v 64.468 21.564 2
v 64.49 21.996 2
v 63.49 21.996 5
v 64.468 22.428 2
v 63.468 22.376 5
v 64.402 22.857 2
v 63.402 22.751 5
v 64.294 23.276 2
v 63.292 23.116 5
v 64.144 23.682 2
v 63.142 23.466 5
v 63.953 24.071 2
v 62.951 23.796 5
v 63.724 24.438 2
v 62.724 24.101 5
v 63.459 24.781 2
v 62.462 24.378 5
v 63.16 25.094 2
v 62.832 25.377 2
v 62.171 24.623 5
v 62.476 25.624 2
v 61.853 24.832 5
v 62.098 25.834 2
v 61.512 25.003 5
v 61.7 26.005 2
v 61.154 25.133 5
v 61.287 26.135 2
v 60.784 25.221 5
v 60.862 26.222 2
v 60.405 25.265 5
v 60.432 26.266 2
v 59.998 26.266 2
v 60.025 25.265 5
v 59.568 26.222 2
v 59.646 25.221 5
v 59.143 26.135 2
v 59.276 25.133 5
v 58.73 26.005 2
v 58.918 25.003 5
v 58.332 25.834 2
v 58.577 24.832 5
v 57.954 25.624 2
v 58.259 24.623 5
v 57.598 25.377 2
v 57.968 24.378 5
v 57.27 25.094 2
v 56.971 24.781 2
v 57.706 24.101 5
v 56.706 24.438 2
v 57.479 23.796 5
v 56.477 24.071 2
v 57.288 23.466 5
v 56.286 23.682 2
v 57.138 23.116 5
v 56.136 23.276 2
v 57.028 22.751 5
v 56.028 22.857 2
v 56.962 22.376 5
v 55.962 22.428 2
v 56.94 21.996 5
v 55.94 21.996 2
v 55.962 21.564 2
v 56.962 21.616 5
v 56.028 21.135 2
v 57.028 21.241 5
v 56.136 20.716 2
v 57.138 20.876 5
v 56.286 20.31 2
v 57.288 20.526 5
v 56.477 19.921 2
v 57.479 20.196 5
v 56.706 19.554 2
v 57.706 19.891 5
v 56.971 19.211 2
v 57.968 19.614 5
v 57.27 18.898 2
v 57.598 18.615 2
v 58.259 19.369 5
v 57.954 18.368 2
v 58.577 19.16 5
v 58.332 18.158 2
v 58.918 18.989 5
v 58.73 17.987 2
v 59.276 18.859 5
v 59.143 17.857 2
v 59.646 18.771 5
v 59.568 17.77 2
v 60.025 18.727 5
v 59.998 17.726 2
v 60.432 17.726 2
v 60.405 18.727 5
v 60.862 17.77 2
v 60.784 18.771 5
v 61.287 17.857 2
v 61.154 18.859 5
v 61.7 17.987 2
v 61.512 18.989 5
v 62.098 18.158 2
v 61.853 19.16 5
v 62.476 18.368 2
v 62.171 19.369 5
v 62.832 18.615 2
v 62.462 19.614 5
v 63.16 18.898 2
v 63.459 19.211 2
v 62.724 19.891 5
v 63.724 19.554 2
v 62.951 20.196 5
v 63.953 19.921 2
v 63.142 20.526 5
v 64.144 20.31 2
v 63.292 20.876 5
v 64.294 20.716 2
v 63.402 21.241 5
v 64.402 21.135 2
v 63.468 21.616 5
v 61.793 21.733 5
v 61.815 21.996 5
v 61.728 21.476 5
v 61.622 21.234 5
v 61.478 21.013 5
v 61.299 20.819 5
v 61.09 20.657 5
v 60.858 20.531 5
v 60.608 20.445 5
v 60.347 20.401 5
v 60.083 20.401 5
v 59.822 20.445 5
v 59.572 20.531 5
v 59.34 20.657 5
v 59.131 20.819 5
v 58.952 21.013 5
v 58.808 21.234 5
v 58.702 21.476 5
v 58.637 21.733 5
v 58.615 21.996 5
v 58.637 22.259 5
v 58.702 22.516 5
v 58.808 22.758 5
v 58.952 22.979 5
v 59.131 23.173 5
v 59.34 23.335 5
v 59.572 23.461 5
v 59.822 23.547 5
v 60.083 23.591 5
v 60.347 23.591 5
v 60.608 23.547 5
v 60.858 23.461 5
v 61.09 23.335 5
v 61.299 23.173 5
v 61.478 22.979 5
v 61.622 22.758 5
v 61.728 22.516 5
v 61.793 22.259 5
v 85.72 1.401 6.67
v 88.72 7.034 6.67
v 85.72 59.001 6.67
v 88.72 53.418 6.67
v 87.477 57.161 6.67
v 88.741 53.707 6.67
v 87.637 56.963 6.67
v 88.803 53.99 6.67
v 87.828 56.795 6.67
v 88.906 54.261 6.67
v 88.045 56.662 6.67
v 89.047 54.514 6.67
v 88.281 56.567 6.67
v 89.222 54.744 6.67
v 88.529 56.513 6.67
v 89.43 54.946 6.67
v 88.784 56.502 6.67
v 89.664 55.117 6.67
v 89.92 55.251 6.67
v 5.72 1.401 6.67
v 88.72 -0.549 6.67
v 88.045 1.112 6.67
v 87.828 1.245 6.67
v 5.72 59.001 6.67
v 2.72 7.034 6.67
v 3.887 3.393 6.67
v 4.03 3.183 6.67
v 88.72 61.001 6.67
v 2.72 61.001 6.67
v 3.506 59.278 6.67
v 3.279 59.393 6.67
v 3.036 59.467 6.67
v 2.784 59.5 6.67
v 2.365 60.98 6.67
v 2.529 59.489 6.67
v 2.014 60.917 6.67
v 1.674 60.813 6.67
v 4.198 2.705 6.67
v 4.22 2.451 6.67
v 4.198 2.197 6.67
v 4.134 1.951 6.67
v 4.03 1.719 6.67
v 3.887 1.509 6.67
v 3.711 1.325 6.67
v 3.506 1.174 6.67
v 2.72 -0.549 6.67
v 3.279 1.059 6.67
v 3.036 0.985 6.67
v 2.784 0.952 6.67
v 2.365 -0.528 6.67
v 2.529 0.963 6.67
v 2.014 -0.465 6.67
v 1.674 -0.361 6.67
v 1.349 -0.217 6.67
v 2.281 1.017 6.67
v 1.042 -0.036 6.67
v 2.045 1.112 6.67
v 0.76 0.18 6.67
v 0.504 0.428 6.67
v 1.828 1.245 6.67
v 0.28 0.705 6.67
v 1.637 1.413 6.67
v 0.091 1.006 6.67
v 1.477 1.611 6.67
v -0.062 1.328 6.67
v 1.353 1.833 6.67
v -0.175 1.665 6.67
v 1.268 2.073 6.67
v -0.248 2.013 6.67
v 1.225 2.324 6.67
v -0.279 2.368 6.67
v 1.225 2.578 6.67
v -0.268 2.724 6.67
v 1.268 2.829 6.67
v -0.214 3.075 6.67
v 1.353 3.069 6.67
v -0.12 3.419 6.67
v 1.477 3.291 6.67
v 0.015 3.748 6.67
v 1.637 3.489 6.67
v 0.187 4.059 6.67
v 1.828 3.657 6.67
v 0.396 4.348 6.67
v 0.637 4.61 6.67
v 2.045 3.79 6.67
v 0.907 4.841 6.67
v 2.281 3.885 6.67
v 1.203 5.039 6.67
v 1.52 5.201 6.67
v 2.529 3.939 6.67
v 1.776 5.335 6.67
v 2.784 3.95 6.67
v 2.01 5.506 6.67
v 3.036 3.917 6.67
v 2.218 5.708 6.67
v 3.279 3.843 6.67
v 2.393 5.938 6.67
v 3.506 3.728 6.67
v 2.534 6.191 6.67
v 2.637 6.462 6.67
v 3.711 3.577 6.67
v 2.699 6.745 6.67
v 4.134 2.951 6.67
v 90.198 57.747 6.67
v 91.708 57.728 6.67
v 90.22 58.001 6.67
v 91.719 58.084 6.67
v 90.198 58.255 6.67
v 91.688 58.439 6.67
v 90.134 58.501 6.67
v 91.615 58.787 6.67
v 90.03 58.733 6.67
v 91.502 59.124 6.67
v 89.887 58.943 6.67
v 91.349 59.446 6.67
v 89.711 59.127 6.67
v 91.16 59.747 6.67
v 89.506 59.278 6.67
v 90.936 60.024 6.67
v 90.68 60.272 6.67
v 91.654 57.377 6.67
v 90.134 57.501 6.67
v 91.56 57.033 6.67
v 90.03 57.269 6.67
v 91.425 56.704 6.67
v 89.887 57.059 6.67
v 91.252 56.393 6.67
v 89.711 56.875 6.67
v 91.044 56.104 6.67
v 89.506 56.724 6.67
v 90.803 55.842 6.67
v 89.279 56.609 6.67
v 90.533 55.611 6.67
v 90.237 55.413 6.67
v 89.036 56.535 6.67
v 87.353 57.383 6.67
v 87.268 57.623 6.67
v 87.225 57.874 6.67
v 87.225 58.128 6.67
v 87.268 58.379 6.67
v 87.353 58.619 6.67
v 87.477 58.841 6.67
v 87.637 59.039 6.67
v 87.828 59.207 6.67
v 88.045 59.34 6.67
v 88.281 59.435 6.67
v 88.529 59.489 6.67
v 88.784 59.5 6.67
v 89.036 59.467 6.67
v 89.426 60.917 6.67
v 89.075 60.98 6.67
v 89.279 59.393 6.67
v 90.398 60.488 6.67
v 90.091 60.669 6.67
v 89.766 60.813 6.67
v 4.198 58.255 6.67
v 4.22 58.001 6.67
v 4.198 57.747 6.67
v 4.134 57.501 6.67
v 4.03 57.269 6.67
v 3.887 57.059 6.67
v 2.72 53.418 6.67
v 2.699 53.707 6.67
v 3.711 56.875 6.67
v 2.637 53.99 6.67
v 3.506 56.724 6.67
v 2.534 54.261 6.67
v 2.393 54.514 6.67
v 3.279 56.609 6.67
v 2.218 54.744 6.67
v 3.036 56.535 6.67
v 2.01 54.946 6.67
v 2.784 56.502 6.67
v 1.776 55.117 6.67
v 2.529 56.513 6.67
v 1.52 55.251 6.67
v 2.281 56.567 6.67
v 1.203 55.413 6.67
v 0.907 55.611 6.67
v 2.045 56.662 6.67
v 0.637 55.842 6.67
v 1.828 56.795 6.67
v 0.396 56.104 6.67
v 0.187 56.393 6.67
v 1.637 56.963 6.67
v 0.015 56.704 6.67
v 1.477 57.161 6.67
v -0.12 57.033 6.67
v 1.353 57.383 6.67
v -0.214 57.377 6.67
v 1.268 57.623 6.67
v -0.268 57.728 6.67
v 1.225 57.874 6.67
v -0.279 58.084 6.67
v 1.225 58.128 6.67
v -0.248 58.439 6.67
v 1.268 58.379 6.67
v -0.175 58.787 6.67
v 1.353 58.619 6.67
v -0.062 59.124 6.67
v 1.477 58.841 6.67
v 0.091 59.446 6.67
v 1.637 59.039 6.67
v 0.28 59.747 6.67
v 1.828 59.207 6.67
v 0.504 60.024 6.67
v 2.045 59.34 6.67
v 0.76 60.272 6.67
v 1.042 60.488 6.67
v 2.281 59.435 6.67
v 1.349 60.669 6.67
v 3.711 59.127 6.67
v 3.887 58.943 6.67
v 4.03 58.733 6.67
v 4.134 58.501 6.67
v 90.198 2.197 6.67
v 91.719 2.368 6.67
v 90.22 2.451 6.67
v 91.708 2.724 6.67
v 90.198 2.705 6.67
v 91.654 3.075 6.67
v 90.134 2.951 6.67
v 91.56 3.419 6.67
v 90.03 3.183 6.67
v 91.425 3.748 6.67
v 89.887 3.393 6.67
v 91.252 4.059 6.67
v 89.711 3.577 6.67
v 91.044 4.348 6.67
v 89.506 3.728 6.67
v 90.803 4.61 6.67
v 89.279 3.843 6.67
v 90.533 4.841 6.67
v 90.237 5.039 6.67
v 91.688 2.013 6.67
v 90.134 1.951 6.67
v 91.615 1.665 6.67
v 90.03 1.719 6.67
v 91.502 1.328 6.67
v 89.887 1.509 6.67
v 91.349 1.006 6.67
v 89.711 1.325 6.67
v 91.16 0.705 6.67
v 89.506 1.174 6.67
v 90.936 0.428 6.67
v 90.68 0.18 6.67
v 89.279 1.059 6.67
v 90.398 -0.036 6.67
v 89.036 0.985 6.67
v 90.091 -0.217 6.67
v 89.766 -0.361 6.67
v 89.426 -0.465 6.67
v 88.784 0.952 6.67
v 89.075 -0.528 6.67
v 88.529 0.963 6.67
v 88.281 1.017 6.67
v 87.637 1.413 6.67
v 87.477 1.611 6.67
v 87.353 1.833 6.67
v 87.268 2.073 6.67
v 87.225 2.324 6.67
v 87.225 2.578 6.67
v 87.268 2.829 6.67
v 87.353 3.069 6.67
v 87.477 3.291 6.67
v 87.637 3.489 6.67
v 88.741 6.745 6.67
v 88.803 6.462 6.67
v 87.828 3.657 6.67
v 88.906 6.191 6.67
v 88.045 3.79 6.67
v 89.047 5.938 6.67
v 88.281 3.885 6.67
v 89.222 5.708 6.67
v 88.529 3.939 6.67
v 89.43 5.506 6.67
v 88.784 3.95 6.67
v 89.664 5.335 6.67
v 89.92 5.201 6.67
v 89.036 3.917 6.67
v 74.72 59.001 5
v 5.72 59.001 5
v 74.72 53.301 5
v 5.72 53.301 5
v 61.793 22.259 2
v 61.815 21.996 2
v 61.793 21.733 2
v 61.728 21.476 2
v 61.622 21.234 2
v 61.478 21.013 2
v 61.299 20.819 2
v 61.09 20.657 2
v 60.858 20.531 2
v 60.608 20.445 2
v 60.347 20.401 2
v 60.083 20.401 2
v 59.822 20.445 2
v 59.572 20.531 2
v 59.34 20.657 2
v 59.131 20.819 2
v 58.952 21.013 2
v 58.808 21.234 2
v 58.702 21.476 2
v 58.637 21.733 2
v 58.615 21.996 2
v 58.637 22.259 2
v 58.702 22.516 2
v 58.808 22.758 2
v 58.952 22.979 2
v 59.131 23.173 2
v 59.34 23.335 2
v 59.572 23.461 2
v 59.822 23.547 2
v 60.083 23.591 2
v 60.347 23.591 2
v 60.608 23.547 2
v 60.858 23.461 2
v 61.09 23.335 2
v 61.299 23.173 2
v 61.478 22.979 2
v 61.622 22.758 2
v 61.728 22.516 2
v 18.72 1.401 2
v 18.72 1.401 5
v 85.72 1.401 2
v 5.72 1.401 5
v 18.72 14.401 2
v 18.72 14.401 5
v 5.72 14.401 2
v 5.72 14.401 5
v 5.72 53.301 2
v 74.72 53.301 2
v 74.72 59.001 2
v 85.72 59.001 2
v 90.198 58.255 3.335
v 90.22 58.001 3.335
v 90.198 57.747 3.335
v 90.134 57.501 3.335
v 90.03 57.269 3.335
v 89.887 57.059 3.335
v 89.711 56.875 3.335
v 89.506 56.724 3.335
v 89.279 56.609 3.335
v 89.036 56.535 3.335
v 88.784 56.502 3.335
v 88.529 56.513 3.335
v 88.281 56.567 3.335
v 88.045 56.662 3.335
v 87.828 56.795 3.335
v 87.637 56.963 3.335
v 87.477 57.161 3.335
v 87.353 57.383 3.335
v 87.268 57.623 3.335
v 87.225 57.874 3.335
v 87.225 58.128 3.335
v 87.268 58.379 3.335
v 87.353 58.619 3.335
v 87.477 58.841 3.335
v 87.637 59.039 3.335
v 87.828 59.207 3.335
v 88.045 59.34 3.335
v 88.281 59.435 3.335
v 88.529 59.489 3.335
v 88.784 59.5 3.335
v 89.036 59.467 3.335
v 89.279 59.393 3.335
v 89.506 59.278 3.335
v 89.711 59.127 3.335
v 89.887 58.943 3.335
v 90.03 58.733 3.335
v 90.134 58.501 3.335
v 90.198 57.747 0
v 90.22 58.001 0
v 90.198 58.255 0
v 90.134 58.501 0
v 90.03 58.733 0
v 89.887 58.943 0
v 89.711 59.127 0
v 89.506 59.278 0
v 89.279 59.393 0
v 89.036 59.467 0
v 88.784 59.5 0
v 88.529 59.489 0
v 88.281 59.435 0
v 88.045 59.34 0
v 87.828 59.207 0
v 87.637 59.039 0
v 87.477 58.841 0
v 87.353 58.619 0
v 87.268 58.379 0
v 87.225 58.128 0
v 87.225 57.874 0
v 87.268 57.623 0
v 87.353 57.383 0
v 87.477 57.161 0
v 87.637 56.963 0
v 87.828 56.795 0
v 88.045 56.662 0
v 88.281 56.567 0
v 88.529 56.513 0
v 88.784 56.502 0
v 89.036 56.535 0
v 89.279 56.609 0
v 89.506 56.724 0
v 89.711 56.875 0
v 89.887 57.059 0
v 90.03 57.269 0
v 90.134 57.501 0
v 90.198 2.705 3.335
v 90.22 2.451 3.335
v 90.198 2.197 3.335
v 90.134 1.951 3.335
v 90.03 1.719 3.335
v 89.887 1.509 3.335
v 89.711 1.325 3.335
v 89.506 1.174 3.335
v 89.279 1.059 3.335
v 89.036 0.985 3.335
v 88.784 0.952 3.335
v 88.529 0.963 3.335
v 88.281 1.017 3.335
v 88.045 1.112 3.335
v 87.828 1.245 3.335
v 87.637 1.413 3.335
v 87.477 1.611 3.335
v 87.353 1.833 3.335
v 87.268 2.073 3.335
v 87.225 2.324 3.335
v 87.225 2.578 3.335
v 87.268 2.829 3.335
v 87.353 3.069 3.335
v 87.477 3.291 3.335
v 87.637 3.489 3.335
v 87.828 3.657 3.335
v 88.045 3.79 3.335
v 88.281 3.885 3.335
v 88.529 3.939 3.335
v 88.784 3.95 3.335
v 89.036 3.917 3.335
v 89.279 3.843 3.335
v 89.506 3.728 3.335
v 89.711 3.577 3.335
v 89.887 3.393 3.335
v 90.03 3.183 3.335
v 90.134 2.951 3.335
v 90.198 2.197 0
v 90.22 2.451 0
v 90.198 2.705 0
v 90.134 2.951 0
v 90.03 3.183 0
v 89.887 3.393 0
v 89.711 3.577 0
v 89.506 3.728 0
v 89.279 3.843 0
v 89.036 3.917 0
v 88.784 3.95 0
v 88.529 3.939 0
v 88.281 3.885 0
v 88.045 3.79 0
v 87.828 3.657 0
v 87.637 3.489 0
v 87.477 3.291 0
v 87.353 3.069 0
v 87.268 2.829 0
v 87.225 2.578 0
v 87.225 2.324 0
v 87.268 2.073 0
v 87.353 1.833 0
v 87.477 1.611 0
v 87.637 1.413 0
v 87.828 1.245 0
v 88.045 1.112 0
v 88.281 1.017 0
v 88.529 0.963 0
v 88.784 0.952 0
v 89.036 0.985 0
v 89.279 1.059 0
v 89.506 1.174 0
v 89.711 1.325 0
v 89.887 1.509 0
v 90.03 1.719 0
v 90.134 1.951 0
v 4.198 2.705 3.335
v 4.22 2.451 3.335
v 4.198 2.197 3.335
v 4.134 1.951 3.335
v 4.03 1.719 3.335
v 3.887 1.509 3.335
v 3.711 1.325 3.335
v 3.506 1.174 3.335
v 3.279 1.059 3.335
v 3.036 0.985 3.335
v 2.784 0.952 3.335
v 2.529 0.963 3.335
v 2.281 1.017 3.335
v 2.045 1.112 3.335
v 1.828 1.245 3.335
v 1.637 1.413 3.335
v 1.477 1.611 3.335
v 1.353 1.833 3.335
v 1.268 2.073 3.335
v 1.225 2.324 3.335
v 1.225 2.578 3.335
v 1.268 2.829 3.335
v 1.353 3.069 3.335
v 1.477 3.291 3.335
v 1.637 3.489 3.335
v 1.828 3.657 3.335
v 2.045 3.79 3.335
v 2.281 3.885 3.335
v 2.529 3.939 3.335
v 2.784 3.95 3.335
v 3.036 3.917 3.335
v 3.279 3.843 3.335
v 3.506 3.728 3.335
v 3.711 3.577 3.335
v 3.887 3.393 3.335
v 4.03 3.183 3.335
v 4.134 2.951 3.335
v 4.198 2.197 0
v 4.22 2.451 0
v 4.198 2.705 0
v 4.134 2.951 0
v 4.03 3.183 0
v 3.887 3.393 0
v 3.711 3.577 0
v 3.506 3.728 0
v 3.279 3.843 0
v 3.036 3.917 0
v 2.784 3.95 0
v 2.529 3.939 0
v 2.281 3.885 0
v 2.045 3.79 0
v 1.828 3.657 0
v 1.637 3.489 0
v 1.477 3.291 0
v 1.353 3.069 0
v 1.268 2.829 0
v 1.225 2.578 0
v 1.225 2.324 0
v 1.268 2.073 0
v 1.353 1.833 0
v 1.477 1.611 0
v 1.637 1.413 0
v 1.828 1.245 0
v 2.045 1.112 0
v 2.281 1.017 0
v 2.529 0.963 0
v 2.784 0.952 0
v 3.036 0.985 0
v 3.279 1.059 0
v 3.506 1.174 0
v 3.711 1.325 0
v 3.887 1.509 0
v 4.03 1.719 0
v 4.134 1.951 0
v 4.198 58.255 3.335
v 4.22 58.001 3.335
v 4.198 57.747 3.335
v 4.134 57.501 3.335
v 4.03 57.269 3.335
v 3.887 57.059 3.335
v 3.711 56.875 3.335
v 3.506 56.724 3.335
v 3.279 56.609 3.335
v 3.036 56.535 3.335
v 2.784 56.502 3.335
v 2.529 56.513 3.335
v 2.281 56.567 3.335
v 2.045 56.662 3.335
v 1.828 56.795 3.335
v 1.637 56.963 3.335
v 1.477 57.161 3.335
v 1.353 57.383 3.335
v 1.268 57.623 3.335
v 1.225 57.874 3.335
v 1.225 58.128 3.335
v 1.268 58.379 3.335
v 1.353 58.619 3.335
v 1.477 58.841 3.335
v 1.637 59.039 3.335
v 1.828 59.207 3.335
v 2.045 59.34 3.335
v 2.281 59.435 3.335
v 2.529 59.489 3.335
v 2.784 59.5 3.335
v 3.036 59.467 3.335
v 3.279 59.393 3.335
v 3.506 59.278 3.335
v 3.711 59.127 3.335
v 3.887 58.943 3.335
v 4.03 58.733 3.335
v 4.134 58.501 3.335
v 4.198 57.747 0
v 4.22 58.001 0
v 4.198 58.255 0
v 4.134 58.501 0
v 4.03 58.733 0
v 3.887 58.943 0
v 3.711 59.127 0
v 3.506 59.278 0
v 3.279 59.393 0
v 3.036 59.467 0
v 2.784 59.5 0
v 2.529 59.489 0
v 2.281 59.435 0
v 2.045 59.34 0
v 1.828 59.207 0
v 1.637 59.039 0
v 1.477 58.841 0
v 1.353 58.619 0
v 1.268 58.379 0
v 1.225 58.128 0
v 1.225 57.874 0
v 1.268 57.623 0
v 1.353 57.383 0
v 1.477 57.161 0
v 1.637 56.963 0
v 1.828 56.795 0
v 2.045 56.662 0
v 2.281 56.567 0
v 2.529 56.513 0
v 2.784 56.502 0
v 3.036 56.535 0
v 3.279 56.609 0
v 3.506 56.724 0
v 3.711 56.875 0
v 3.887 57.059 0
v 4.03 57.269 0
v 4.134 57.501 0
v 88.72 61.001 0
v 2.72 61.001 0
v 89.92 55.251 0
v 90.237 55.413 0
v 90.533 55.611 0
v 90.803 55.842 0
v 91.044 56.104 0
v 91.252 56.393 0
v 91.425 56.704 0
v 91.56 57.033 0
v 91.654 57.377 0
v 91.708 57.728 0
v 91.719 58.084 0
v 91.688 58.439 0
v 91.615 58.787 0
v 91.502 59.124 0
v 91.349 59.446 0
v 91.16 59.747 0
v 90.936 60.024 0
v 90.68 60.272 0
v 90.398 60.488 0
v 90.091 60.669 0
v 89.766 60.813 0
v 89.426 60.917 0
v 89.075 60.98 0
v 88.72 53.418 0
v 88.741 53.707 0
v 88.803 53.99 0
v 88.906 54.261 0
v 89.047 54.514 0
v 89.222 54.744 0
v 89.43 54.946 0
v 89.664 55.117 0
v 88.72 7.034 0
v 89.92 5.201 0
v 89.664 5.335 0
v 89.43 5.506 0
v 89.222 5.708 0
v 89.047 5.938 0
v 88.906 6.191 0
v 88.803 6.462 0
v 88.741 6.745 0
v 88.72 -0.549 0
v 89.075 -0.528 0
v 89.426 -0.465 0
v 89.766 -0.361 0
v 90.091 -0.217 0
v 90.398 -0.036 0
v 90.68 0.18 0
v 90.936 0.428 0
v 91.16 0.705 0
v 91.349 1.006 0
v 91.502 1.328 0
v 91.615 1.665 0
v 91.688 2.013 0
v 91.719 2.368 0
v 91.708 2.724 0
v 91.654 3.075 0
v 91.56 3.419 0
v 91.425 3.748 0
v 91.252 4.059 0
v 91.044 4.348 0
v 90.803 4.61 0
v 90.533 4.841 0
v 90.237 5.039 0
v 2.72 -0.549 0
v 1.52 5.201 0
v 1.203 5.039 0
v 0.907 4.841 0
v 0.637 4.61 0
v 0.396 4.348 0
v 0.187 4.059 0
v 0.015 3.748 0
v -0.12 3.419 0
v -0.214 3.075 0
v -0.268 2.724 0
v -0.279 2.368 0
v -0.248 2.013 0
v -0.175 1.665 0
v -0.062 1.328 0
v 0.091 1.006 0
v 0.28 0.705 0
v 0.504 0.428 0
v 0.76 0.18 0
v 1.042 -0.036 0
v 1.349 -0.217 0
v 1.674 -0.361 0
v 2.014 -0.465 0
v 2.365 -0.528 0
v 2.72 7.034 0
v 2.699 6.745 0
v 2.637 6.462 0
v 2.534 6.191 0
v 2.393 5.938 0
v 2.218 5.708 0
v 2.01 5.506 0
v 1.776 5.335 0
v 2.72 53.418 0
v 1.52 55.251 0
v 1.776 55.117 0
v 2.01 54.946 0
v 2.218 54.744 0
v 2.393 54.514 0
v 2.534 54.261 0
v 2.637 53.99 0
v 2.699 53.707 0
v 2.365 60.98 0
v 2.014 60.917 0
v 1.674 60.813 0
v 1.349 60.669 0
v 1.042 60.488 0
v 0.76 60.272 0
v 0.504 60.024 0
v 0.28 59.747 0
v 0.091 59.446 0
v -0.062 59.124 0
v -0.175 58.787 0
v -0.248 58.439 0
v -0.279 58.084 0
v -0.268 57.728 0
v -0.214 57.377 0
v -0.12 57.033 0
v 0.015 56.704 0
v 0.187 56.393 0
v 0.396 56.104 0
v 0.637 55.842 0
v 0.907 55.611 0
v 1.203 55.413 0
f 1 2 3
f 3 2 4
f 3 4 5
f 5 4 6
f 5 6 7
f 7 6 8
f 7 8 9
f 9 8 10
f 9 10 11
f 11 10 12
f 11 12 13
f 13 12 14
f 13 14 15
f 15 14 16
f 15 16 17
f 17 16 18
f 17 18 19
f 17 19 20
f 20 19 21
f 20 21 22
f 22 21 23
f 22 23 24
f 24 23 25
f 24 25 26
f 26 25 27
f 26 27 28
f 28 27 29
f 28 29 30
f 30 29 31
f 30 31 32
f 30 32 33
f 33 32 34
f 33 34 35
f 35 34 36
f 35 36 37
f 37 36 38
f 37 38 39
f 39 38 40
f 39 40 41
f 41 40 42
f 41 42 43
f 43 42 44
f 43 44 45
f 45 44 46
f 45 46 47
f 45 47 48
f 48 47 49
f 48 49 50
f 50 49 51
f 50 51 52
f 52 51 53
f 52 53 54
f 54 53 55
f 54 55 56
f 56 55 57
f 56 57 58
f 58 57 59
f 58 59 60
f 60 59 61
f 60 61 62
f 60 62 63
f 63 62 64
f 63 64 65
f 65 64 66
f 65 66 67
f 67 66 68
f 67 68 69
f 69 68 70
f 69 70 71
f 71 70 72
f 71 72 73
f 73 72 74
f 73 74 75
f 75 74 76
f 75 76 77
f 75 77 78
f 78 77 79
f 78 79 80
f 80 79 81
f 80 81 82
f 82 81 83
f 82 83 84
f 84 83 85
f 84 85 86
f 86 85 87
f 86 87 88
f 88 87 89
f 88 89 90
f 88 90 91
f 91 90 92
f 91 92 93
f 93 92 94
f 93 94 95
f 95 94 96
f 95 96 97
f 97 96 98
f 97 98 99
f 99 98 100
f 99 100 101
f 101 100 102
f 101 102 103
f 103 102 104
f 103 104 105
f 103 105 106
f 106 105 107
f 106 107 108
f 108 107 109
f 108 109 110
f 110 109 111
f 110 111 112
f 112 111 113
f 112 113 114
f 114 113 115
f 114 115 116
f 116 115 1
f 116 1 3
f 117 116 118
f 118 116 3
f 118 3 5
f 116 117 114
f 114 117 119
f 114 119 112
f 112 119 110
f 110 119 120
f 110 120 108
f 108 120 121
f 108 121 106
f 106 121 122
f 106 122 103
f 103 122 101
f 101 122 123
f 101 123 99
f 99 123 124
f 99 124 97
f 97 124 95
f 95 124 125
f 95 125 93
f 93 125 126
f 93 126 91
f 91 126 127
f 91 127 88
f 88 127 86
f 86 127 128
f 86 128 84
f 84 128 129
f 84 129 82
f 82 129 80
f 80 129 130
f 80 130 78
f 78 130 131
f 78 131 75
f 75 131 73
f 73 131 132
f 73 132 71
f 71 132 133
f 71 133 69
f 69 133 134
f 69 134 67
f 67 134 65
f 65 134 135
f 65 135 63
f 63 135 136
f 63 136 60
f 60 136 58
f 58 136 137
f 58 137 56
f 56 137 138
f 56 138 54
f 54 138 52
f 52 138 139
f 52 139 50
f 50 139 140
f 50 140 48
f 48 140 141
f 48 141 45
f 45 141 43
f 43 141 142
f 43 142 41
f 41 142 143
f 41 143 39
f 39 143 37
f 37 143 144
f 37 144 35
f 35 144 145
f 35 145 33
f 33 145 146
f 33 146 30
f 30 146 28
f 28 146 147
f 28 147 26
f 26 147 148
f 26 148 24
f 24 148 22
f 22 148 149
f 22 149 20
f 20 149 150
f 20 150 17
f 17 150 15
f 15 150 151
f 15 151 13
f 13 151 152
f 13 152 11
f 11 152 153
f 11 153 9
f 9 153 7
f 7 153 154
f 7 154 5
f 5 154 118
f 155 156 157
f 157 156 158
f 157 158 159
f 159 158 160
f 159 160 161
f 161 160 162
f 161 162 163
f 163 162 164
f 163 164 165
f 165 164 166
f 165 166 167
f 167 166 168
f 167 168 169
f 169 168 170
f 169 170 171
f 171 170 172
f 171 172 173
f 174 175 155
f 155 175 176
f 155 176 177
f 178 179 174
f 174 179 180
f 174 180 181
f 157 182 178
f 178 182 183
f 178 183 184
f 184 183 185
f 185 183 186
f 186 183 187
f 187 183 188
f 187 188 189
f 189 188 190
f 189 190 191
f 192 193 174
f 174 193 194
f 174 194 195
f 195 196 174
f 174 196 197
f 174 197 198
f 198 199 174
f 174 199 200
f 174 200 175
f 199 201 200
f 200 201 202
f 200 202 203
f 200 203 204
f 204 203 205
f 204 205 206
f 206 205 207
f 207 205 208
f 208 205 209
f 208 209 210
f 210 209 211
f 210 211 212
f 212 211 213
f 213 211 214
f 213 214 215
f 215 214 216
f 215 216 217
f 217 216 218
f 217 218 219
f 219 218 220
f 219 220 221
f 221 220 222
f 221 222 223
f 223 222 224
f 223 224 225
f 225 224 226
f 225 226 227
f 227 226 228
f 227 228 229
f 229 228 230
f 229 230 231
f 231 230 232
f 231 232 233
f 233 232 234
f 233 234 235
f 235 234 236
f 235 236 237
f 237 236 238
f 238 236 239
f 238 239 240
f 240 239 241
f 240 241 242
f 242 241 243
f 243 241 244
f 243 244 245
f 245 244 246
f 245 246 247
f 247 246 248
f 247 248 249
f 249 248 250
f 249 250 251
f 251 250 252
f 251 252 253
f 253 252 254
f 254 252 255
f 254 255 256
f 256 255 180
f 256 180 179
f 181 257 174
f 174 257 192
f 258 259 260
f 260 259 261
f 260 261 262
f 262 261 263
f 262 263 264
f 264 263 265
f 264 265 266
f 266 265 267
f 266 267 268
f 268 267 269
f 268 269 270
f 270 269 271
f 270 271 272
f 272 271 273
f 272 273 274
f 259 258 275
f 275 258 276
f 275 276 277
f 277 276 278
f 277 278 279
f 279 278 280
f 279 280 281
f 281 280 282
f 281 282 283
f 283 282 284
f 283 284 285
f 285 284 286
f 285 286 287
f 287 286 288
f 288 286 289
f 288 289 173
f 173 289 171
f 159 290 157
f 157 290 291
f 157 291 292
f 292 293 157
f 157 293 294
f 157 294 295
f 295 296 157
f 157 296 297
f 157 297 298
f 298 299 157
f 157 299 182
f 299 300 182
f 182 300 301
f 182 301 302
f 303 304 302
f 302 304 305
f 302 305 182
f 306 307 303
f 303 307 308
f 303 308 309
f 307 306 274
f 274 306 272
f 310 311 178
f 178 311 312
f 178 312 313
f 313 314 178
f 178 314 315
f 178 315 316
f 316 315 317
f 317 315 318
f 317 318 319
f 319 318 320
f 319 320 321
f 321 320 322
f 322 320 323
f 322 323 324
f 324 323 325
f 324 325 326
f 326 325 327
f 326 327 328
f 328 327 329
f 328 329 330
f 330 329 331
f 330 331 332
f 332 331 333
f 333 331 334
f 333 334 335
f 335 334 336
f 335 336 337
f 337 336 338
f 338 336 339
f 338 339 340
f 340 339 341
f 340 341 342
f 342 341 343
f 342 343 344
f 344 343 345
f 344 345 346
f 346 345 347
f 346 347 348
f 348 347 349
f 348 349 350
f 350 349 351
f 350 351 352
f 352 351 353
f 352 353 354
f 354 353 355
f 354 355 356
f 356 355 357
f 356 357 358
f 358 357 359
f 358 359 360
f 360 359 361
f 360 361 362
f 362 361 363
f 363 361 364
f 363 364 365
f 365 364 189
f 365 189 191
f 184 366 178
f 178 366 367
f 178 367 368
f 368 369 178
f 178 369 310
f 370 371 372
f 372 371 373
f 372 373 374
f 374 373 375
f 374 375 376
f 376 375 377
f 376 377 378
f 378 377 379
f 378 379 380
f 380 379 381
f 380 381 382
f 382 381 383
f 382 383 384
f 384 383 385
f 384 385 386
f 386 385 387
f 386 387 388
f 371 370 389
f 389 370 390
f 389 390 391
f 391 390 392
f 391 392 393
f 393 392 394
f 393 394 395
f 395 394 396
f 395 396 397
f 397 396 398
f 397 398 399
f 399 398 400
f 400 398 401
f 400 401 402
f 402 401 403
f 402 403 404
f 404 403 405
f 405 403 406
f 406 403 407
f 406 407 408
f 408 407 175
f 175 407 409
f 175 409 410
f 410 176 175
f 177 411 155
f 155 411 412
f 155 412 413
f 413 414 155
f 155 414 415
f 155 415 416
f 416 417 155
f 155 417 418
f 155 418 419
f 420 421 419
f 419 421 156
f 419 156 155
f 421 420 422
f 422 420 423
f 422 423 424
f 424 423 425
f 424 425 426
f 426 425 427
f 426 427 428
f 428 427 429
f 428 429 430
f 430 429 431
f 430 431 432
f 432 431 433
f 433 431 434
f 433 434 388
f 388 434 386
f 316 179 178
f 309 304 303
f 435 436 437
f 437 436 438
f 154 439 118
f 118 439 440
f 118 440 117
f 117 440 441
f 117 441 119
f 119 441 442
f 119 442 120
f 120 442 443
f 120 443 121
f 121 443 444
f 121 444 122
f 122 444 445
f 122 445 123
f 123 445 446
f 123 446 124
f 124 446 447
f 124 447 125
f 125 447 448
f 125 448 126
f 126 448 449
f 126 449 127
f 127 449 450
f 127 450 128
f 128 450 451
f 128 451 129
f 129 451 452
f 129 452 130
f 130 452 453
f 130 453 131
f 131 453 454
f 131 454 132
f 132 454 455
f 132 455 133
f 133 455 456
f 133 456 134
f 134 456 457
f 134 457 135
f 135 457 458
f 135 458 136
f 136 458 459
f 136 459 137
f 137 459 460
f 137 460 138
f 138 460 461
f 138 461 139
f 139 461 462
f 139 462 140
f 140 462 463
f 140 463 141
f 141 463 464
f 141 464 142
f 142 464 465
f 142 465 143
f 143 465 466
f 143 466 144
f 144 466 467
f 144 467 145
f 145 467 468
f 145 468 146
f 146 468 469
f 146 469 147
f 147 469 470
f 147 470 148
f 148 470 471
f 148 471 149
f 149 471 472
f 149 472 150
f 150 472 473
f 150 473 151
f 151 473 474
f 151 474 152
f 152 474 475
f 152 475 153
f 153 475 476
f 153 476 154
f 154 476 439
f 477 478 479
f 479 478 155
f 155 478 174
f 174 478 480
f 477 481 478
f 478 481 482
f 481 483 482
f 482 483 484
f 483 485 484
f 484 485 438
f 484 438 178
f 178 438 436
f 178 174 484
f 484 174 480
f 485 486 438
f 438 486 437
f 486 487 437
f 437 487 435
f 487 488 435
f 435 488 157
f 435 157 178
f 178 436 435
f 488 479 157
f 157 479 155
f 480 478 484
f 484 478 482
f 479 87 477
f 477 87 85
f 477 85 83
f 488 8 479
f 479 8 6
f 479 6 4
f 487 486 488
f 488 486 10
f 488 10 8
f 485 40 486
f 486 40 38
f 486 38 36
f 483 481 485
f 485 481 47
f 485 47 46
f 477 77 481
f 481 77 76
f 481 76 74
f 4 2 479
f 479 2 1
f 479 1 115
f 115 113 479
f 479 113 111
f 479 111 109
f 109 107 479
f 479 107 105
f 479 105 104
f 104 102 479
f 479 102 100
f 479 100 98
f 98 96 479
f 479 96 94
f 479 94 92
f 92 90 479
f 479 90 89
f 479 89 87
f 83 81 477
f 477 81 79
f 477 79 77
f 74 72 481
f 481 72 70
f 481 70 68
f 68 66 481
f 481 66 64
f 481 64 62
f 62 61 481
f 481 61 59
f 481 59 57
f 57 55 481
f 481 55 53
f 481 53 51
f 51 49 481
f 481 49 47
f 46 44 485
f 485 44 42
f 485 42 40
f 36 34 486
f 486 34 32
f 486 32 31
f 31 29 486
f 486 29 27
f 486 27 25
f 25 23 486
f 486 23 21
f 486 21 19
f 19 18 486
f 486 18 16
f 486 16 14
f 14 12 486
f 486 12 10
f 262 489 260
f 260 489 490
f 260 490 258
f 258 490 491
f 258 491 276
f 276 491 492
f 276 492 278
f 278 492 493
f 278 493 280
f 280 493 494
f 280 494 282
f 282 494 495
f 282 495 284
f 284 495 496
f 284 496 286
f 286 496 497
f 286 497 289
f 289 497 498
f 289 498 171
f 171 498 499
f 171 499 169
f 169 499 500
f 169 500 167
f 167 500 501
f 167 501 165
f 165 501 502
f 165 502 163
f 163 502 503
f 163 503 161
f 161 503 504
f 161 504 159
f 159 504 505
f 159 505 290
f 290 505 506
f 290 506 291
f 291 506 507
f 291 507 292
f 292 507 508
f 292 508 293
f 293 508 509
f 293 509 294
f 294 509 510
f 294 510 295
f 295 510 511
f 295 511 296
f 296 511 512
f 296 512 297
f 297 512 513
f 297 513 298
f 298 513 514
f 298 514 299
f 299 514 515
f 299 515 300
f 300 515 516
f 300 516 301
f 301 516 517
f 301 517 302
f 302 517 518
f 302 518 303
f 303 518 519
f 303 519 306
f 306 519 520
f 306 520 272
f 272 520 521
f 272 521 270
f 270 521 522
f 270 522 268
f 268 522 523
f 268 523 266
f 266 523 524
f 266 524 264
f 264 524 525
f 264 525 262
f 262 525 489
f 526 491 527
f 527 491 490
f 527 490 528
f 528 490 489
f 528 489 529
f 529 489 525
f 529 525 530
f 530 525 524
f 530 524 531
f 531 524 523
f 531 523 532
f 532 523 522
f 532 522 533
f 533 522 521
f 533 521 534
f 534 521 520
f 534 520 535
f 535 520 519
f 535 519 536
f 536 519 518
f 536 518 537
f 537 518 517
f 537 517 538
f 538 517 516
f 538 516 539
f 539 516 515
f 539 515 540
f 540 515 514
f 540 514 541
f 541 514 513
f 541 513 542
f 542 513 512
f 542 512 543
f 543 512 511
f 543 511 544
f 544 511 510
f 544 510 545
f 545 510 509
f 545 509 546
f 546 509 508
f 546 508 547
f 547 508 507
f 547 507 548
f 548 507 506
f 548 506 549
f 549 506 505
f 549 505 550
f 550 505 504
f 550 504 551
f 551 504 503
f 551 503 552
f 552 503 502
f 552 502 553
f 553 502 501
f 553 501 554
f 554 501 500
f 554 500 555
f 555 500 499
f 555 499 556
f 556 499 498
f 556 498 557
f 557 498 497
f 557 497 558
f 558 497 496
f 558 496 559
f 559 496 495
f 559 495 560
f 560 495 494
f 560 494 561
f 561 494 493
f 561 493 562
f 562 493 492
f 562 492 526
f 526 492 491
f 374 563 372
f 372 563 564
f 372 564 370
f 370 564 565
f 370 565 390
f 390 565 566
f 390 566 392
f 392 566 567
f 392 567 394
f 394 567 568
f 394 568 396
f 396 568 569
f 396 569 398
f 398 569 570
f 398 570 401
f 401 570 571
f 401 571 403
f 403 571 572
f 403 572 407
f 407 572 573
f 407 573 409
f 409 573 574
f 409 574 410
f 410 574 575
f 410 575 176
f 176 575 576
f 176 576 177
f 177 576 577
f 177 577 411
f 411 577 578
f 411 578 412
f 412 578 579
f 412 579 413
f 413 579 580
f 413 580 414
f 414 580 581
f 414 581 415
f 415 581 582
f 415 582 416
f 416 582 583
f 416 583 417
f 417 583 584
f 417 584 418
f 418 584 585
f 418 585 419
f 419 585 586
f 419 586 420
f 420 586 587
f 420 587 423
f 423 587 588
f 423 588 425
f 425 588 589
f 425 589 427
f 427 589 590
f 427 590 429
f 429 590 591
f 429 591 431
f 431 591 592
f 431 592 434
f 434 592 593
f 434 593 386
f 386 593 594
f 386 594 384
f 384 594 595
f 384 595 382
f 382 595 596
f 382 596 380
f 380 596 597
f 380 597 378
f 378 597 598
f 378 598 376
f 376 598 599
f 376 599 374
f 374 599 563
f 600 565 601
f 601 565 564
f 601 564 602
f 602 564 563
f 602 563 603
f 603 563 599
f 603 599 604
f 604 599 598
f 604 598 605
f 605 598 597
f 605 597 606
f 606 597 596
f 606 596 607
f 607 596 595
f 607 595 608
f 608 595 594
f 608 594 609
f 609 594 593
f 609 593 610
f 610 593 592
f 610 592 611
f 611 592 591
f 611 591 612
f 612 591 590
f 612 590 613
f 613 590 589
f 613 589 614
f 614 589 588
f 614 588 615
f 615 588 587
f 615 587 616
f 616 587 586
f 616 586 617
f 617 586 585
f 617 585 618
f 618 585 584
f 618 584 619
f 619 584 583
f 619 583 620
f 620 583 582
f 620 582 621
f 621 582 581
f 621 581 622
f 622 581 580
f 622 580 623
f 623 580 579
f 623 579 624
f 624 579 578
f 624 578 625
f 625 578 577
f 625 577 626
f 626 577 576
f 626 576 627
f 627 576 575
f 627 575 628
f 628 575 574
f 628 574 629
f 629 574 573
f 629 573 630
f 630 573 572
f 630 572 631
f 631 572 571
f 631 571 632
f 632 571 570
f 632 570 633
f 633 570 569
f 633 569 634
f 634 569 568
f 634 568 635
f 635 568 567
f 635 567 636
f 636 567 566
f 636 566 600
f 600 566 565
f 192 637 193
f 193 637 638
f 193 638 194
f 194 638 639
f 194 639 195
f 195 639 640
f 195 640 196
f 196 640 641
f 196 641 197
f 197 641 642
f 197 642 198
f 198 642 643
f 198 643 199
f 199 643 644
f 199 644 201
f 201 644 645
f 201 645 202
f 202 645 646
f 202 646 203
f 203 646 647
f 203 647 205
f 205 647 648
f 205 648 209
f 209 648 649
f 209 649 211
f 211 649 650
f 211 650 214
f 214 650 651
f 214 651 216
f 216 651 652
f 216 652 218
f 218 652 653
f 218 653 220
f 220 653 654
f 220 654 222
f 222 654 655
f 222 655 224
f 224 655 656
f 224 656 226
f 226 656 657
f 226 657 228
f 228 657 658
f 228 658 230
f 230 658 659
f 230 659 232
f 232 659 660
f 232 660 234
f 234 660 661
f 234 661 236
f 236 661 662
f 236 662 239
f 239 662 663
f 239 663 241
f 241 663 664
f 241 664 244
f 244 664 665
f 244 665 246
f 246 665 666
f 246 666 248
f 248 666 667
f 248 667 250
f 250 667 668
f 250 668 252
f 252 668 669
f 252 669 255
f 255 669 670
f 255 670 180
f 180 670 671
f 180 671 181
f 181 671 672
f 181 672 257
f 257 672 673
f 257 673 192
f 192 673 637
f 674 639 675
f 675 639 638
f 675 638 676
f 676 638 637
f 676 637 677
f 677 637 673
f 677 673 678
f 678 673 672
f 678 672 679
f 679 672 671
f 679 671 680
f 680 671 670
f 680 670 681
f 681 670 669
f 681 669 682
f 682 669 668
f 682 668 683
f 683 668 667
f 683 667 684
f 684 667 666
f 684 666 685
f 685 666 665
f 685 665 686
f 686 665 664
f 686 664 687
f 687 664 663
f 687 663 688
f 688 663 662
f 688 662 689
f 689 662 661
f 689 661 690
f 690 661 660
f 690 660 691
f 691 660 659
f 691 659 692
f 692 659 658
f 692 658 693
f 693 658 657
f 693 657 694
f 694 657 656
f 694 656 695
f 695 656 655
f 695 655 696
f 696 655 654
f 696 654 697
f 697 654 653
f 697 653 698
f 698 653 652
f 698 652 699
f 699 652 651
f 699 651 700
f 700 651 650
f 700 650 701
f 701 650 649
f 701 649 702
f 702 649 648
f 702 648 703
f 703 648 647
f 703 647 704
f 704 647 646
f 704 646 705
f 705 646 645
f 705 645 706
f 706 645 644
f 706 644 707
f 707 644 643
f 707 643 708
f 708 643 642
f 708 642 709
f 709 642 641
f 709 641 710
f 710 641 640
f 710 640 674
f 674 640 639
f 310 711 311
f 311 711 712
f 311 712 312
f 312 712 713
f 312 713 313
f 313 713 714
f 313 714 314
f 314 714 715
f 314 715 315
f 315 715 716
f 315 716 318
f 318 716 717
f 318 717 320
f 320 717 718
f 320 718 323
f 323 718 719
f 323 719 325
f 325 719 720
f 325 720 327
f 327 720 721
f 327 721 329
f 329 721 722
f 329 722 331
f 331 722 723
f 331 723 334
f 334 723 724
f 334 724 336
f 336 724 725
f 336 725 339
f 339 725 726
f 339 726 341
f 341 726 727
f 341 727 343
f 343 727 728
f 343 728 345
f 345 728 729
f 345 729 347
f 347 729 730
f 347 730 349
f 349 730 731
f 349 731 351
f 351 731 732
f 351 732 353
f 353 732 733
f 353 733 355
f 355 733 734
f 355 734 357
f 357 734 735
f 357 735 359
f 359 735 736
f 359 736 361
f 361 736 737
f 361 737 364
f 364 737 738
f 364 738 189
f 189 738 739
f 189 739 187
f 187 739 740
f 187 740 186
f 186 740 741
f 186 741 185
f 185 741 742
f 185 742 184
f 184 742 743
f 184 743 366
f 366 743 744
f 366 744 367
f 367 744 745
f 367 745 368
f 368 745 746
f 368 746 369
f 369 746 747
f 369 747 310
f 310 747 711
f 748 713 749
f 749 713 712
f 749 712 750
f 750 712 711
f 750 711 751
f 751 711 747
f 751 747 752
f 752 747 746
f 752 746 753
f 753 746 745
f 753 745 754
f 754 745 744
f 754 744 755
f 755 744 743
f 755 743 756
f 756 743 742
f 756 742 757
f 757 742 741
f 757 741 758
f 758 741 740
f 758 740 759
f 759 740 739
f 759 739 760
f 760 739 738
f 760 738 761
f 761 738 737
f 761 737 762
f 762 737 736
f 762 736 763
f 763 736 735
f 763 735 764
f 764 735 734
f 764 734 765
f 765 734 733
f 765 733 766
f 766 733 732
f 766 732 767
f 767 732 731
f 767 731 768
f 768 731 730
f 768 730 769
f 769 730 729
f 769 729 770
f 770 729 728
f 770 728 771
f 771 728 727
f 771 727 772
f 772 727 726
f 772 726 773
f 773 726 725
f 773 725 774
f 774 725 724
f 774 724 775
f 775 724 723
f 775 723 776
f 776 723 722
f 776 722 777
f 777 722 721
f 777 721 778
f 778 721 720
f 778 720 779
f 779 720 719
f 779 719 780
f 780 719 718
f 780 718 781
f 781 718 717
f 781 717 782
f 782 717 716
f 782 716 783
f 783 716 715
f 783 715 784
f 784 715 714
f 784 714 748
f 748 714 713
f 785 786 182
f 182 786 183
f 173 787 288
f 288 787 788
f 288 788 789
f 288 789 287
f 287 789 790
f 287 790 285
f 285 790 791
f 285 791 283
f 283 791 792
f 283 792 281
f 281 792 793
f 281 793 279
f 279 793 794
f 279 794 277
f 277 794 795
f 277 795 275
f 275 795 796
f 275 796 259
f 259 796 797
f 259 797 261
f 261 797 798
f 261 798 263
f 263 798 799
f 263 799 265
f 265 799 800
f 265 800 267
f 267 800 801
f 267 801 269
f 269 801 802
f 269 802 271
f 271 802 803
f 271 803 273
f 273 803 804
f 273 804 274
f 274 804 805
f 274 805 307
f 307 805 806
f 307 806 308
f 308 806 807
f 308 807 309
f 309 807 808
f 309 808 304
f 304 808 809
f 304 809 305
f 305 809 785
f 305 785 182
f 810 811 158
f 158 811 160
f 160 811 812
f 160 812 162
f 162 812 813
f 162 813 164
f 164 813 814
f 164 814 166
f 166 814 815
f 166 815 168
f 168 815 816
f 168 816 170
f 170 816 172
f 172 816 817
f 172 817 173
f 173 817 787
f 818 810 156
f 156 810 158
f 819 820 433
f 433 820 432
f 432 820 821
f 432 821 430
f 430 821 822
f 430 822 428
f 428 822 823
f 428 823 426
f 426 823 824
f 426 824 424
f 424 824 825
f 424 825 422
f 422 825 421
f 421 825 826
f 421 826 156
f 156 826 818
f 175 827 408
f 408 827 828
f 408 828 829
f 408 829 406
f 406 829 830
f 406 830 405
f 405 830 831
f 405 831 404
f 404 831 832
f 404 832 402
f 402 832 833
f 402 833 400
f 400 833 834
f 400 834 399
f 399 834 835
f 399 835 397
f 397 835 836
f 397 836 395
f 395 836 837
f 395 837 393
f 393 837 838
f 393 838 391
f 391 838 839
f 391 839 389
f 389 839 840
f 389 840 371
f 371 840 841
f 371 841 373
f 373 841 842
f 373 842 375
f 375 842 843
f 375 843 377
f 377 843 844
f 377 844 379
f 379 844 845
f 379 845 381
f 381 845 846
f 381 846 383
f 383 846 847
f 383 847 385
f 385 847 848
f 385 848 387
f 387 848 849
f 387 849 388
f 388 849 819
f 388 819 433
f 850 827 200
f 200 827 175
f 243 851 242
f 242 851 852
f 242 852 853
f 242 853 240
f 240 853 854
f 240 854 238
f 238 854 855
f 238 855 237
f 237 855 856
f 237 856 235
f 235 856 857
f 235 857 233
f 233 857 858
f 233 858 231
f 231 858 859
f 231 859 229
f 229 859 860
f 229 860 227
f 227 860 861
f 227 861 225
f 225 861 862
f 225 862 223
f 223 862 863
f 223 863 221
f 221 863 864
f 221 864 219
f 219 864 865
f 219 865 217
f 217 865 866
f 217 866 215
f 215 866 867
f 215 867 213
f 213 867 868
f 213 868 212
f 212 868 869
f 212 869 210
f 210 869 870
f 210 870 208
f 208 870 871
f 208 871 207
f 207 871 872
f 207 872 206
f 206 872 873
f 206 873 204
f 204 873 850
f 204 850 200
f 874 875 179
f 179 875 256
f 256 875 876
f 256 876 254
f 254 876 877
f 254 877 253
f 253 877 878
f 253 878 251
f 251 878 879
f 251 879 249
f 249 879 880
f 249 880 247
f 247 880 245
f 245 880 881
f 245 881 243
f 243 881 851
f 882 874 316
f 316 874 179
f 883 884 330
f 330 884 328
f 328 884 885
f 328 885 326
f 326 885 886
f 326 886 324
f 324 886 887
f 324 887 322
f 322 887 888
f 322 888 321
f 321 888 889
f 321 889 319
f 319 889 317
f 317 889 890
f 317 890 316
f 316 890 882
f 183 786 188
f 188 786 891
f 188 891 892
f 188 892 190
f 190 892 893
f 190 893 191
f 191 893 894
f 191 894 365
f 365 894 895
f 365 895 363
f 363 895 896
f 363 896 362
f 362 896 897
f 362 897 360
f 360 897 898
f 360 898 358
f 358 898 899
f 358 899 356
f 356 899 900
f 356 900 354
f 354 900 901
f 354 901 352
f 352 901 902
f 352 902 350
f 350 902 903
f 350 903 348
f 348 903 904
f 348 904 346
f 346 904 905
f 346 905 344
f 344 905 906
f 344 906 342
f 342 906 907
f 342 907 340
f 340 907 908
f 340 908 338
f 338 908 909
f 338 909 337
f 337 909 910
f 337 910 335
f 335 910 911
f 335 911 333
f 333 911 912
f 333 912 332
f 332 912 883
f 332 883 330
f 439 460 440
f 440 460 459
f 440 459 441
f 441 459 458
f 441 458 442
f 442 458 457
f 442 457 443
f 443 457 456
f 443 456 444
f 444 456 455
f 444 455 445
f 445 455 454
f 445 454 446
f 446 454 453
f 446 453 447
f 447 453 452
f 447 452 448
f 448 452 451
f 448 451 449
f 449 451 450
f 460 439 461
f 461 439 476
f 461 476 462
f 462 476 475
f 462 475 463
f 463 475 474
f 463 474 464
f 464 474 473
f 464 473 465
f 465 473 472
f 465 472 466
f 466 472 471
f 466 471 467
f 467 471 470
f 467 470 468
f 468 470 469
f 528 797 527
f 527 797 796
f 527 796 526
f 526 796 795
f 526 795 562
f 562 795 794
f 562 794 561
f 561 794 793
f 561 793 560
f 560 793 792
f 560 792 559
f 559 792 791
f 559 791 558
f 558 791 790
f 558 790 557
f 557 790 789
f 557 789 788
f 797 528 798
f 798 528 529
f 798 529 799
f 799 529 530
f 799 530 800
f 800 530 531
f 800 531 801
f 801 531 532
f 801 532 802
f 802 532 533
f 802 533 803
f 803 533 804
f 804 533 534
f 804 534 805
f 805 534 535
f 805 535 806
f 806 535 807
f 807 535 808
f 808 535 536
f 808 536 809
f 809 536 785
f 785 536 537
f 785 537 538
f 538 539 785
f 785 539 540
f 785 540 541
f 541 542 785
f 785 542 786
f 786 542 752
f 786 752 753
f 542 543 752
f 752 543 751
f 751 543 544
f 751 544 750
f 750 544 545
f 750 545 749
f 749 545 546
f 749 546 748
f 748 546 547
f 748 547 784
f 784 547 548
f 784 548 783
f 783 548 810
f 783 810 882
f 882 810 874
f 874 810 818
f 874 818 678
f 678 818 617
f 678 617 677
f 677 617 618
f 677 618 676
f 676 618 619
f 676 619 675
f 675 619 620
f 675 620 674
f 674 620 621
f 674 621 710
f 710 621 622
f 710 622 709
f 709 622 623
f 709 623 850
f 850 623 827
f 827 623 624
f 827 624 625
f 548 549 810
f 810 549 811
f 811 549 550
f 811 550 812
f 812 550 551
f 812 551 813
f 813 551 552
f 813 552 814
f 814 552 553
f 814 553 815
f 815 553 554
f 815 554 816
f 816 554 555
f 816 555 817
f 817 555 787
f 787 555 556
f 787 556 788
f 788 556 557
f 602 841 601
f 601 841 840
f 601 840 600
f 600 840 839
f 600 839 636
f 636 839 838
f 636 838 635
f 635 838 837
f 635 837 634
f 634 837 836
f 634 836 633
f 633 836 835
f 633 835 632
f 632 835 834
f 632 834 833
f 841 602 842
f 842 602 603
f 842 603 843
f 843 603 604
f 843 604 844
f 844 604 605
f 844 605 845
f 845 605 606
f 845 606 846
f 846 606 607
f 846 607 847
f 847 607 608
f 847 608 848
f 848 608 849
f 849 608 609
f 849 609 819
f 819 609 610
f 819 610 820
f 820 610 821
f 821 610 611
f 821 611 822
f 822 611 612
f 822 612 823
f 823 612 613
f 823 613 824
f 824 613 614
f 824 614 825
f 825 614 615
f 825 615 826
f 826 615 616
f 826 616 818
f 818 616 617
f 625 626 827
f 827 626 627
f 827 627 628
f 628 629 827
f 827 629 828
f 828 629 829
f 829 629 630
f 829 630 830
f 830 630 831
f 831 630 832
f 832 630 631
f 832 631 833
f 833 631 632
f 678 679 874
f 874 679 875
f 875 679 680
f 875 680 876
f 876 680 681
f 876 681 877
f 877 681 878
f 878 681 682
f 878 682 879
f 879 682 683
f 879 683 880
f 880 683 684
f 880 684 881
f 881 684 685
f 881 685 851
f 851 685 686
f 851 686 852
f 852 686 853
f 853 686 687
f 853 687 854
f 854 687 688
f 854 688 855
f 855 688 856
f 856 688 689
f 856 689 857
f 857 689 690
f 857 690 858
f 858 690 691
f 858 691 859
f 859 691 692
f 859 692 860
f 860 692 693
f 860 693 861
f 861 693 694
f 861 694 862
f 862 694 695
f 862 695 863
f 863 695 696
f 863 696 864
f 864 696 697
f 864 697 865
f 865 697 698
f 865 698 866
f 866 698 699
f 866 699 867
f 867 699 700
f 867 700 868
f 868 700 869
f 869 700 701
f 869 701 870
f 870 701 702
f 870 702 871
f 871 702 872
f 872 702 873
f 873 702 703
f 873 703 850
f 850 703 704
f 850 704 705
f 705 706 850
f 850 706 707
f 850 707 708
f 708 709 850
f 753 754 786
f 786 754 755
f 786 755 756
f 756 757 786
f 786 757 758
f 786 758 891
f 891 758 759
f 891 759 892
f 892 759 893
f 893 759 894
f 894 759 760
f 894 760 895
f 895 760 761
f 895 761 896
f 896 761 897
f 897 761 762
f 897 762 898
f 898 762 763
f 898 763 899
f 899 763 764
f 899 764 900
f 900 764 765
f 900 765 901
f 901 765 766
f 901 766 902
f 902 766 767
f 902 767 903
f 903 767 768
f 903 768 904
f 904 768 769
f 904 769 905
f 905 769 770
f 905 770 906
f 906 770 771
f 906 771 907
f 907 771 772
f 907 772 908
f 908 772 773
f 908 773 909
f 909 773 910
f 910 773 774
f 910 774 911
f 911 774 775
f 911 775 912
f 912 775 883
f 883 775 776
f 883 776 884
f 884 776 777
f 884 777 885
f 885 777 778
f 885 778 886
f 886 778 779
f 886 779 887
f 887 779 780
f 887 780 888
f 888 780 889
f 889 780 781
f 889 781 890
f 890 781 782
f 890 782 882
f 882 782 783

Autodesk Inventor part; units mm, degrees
ref_plane "YZ Plane" through (0, 0, 0) normal (1, 0, 0) x (0, 1, 0)
ref_plane "XZ Plane" through (0, 0, 0) normal (0, 1, 0) x (-1, 0, 0)
ref_plane "XY Plane" through (0, 0, 0) normal (0, 0, 1) x (1, 0, 0)
sketch "Sketch1" plane through (0, 0, 0) normal (0, 0, 1) x (1, 0, 0)
  line L0 (85.72, 30.226) -> (85.72, 1.401) construction
  line L1 (85.72, 1.401) -> (45.72, 1.401) construction
  line L2 (85.72, 1.401) -> (5.72, 1.401) construction
  line L3 (5.72, 1.401) -> (5.72, 59.001) construction
  line L4 (5.72, 59.001) -> (85.72, 59.001) construction
  line L5 (85.72, 59.001) -> (85.72, 1.401) construction
  line L6 (61.99, 1.401) -> (61.99, 20.221) construction
  line L7 (61.99, 20.221) -> (85.72, 20.221) construction
  line L8 (61.99, 20.221) -> (58.44, 20.221) construction
  line L9 (61.99, 23.771) -> (61.99, 20.221) construction
  line L10 (60.215, 20.221) -> (61.99, 20.221) construction
  line L11 (61.99, 20.221) -> (61.99, 21.996) construction
  line L12 (61.99, 21.996) -> (60.215, 21.996) construction
  line L13 (60.215, 21.996) -> (60.215, 20.221) construction
  circle A0 centre (60.215, 21.996) radius 1.775 construction
  circle A1 centre (60.215, 21.996) radius 2.775 construction
  circle A2 centre (60.215, 21.996) radius 4.275 construction
  line L14 (5.72, 59.001) -> (74.72, 59.001) construction
  line L15 (74.72, 59.001) -> (74.72, 53.301) construction
  line L16 (74.72, 53.301) -> (5.72, 53.301) construction
  line L17 (5.72, 53.301) -> (5.72, 59.001) construction
  line L18 (5.72, 1.401) -> (18.72, 1.401) construction
  line L19 (18.72, 1.401) -> (18.72, 14.401) construction
  line L20 (18.72, 14.401) -> (5.72, 14.401) construction
  line L21 (5.72, 14.401) -> (5.72, 1.401) construction
  circle A3 centre (2.72, 58.001) radius 1.5
  line L22 (3.72, 61.001) -> (5.72, 61.001)
  line L23 (5.72, 61.001) -> (5.72, 59.001) construction
  line L24 (5.72, 61.001) -> (2.72, 61.001)
  line L25 (5.72, 55.001) -> (5.72, 61.001) construction
  line L26 (45.72, 1.9437) -> (45.72, 30.226) construction
  line L27 (45.72, 30.226) -> (85.72, 30.226) construction
  arc A4 (2.72, 61.001) -> (1.52, 55.2515) centre (2.72, 58.001) ccw
  circle A5 centre (2.72, 2.451) radius 1.5
  line L28 (3.72, -0.549) -> (5.72, -0.549)
  line L29 (5.72, -0.549) -> (2.72, -0.549)
  arc A6 (1.52, 5.2005) -> (2.72, -0.549) centre (2.72, 2.451) ccw
  circle A7 centre (88.72, 58.001) radius 1.5
  line L30 (85.72, 61.001) -> (88.72, 61.001)
  arc A8 (89.92, 55.2515) -> (88.72, 61.001) centre (88.72, 58.001) ccw
  line L31 (85.72, -0.549) -> (88.72, -0.549)
  circle A9 centre (88.72, 2.451) radius 1.5
  arc A10 (88.72, -0.549) -> (89.92, 5.2005) centre (88.72, 2.451) ccw
  line L32 (2.72, 53.4184) -> (2.72, 7.0336)
  line L33 (5.72, 61.001) -> (85.72, 61.001)
  line L34 (88.72, 53.4184) -> (88.72, 7.0336)
  line L35 (85.72, -0.549) -> (5.72, -0.549)
  arc A11 (2.72, 53.4184) -> (1.52, 55.2515) centre (0.72, 53.4184) ccw
  arc A12 (1.52, 5.2005) -> (2.72, 7.0336) centre (0.72, 7.0336) ccw
  arc A13 (88.72, 7.0336) -> (89.92, 5.2005) centre (90.72, 7.0336) ccw
  arc A14 (89.92, 55.2515) -> (88.72, 53.4184) centre (90.72, 53.4184) ccw
  point P0 (0, 0)
  point P1 (2.72, 55.001)
  point P2 (2.72, 5.451)
  point P3 (91.44, 0)
  point P4 (88.72, 55.001)
  point P5 (88.72, 5.451)
  dimension "d32" = 40
  dimension "d33" = 28.825
  dimension "d34" = 80
  dimension "d37" = 18.82
  dimension "d40" = 5.55
  dimension "d41" = 8.55
  dimension "d42" = 69
  dimension "d43" = 5.7
  dimension "d44" = 13
  dimension "d45" = 13
  dimension "d52" = 2
  dimension "d80" = 3
extrude "Extrusion1" add sketch "Sketch1" along normal blind 2
sketch "Sketch2" plane through (0, 0, 2) normal (0, 0, 1) x (1, 0, 0)
  line L0 (85.72, 30.226) -> (85.72, 1.401)
  line L1 (5.72, 14.401) -> (5.72, 53.301)
  line L2 (74.72, 59.001) -> (85.72, 59.001)
  line L3 (85.72, 59.001) -> (85.72, 1.401)
  line L4 (61.815, 21.996) -> (60.215, 21.996)
  circle A0 centre (60.215, 21.996) radius 1.6
  circle A1 centre (60.215, 21.996) radius 2.775 construction
  circle A2 centre (60.215, 21.996) radius 4.275
  line L5 (45.72, 59.001) -> (74.72, 59.001)
  line L6 (74.72, 59.001) -> (74.72, 53.301)
  line L7 (74.72, 53.301) -> (5.72, 53.301)
  line L8 (5.72, 58.001) -> (5.72, 59.001)
  line L9 (5.72, 1.401) -> (18.72, 1.401)
  line L10 (18.72, 1.401) -> (18.72, 14.401)
  line L11 (18.72, 14.401) -> (5.72, 14.401)
  line L12 (5.72, 2.451) -> (5.72, 1.401)
  circle A3 centre (2.72, 58.001) radius 1.5
  line L13 (3.72, 61.001) -> (5.72, 61.001)
  line L14 (5.72, 61.001) -> (5.72, 59.001)
  line L15 (5.72, 61.001) -> (2.72, 61.001)
  line L16 (5.72, 59.001) -> (5.72, 61.001)
  arc A4 (2.72, 61.001) -> (1.52, 55.2515) centre (2.72, 58.001) ccw
  line L17 (3.72, -0.549) -> (5.72, -0.549)
  line L18 (5.72, -0.549) -> (2.72, -0.549)
  circle A5 centre (2.72, 2.451) radius 1.5
  arc A6 (1.52, 5.2005) -> (2.72, -0.549) centre (2.72, 2.451) ccw
  line L19 (85.72, -0.549) -> (88.72, -0.549)
  circle A7 centre (88.72, 2.451) radius 1.5
  arc A8 (88.72, -0.549) -> (89.92, 5.2005) centre (88.72, 2.451) ccw
  circle A9 centre (88.72, 58.001) radius 1.5
  arc A10 (89.92, 55.2515) -> (88.72, 61.001) centre (88.72, 58.001) ccw
  line L20 (85.72, 61.001) -> (88.72, 61.001)
  line L21 (2.72, 53.4184) -> (2.72, 7.0336)
  line L22 (5.72, 61.001) -> (85.72, 61.001)
  line L23 (88.72, 53.4184) -> (88.72, 7.0336)
  line L24 (85.72, -0.549) -> (5.72, -0.549)
  arc A11 (2.72, 53.4184) -> (1.52, 55.2515) centre (0.72, 53.4184) ccw
  arc A12 (1.52, 5.2005) -> (2.72, 7.0336) centre (0.72, 7.0336) ccw
  arc A13 (88.72, 7.0336) -> (89.92, 5.2005) centre (90.72, 7.0336) ccw
  arc A14 (89.92, 55.2515) -> (88.72, 53.4184) centre (90.72, 53.4184) ccw
  line L25 (85.72, 1.401) -> (74.72, 1.401)
  line L26 (61.99, 1.401) -> (45.72, 1.401)
  line L27 (85.72, 1.401) -> (74.72, 1.401)
  line L28 (61.99, 1.401) -> (18.72, 1.401)
  line L29 (61.99, 1.401) -> (74.72, 1.401)
  point P0 (0, 0)
  point P1 (2.72, 55.001)
  point P2 (2.72, 5.451)
  point P3 (91.44, 0)
  point P4 (88.72, 5.451)
  point P5 (88.72, 55.001)
  dimension "d89" = 3.2
  dimension "d53" = 40
  dimension "d54" = 28.825
  dimension "d55" = 80
  dimension "d57" = 5.55
  dimension "d58" = 8.55
  dimension "d59" = 69
  dimension "d60" = 5.7
  dimension "d61" = 13
  dimension "d62" = 13
  dimension "d63" = 2
  dimension "d81" = 3
  dimension "d82" = 3
  dimension "d83" = 3
  dimension "d84" = 3
extrude "Extrusion2" add sketch "Sketch2" along normal blind 3
sketch "Sketch5" plane through (0, 0, 5) normal (0, 0, 1) x (1, 0, 0)
  line L0 (85.72, 30.226) -> (85.72, 1.401)
  line L1 (85.72, 1.401) -> (45.72, 1.401)
  line L2 (85.72, 1.401) -> (5.72, 1.401)
  line L3 (5.72, 1.401) -> (5.72, 59.001)
  line L4 (5.72, 59.001) -> (85.72, 59.001)
  line L5 (85.72, 59.001) -> (85.72, 1.401)
  line L6 (5.72, 59.001) -> (74.72, 59.001)
  line L7 (5.72, 53.301) -> (5.72, 59.001)
  line L8 (5.72, 1.401) -> (18.72, 1.401)
  line L9 (5.72, 14.401) -> (5.72, 1.401)
  circle A0 centre (2.72, 58.001) radius 1.5
  line L10 (3.72, 61.001) -> (5.72, 61.001)
  line L11 (5.72, 61.001) -> (5.72, 59.001)
  line L12 (5.72, 61.001) -> (2.72, 61.001)
  line L13 (5.72, 55.001) -> (5.72, 61.001)
  arc A1 (2.72, 61.001) -> (1.52, 55.2515) centre (2.72, 58.001) ccw
  line L14 (3.72, -0.549) -> (5.72, -0.549)
  line L15 (5.72, -0.549) -> (2.72, -0.549)
  circle A2 centre (2.72, 2.451) radius 1.5
  arc A3 (1.52, 5.2005) -> (2.72, -0.549) centre (2.72, 2.451) ccw
  line L16 (85.72, -0.549) -> (88.72, -0.549)
  circle A4 centre (88.72, 2.451) radius 1.5
  arc A5 (88.72, -0.549) -> (89.92, 5.2005) centre (88.72, 2.451) ccw
  circle A6 centre (88.72, 58.001) radius 1.5
  arc A7 (89.92, 55.2515) -> (88.72, 61.001) centre (88.72, 58.001) ccw
  line L17 (85.72, 61.001) -> (88.72, 61.001)
  line L18 (2.72, 53.4184) -> (2.72, 7.0336)
  line L19 (5.72, 61.001) -> (85.72, 61.001)
  line L20 (88.72, 53.4184) -> (88.72, 7.0336)
  line L21 (85.72, -0.549) -> (5.72, -0.549)
  arc A8 (2.72, 53.4184) -> (1.52, 55.2515) centre (0.72, 53.4184) ccw
  arc A9 (1.52, 5.2005) -> (2.72, 7.0336) centre (0.72, 7.0336) ccw
  arc A10 (88.72, 7.0336) -> (89.92, 5.2005) centre (90.72, 7.0336) ccw
  arc A11 (89.92, 55.2515) -> (88.72, 53.4184) centre (90.72, 53.4184) ccw
  point P0 (0, 0)
  point P1 (0, 0)
  point P2 (2.72, 55.001)
  point P3 (2.72, 5.451)
  point P4 (91.44, 0)
  point P5 (88.72, 5.451)
  point P6 (88.72, 55.001)
  dimension "d64" = 40
  dimension "d65" = 28.825
  dimension "d66" = 80
  dimension "d74" = 2
  dimension "d85" = 3
  dimension "d86" = 3
  dimension "d87" = 3
  dimension "d88" = 3
extrude "Extrusion5" add sketch "Sketch5" along normal blind 1.67
chamfer "Chamfer1" distance 1 distance2 3 1 edges at (55.94, 21.996, 5) measured on face at (63.5414, 21.5273, 5)
properties part number "Redid Enclosure Bottom"
